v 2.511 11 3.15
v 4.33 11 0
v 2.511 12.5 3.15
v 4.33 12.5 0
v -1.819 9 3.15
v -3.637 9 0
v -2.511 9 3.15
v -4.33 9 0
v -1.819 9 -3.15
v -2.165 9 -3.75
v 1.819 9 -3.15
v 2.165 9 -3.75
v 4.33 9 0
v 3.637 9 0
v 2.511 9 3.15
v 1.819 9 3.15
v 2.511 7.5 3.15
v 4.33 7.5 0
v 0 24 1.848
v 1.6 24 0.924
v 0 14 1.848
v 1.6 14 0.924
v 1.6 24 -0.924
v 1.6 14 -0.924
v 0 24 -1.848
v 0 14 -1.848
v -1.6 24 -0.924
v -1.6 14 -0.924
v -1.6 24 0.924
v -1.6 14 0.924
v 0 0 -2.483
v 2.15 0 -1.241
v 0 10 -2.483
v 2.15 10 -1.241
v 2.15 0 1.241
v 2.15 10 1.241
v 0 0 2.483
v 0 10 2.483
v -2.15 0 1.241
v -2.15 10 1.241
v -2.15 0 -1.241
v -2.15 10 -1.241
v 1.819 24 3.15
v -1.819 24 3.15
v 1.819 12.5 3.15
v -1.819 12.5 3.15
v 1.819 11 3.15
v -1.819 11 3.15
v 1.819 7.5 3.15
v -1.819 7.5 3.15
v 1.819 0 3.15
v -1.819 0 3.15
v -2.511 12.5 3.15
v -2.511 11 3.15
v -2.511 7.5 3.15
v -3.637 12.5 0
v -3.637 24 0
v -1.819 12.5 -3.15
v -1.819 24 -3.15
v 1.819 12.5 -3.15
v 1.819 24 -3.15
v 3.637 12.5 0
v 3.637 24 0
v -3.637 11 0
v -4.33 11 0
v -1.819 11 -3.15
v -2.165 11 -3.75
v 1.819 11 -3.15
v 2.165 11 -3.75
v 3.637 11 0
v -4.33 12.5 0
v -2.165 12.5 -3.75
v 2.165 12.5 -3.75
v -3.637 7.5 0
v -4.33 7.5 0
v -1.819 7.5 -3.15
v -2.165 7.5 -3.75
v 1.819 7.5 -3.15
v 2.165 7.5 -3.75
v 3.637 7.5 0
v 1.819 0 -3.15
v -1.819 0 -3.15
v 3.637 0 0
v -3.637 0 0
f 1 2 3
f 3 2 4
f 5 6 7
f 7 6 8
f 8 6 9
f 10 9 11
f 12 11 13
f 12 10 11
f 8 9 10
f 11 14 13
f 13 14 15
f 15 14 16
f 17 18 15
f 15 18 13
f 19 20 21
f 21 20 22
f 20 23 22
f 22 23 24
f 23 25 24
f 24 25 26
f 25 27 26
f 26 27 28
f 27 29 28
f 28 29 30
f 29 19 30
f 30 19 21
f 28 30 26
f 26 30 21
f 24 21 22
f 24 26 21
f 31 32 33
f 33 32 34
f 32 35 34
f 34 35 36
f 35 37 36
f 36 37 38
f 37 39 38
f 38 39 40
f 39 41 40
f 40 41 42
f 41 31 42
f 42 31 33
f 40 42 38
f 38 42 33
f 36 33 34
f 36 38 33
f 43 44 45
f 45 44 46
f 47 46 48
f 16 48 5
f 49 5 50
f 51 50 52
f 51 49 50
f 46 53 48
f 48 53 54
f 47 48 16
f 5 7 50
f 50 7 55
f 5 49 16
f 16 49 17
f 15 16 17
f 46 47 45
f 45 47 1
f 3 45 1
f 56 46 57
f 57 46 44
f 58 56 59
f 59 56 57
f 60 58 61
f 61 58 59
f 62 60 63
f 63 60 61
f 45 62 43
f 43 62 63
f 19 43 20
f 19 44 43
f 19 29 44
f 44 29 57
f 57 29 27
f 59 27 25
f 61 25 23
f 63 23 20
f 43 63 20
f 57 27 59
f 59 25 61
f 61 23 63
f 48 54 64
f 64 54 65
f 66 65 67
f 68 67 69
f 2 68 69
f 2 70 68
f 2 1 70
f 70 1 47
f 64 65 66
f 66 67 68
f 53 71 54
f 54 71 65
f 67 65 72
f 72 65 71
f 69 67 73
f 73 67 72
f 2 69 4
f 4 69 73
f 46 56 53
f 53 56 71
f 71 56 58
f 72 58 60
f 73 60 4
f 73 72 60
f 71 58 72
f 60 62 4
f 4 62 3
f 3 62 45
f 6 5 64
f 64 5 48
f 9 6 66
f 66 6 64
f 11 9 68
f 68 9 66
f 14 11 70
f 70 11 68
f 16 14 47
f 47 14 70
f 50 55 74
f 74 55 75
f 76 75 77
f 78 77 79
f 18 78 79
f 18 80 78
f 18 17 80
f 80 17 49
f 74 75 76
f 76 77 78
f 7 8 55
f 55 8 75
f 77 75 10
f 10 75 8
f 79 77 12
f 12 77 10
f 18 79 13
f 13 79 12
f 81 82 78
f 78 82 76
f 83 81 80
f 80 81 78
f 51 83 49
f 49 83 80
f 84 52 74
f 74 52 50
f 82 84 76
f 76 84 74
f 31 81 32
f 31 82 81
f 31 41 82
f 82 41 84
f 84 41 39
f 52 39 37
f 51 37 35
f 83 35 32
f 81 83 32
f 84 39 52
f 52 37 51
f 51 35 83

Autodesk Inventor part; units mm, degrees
ref_plane "YZ Plane" through (0, 0, 0) normal (1, 0, 0) x (0, 1, 0)
ref_plane "XZ Plane" through (0, 0, 0) normal (0, 1, 0) x (-1, 0, 0)
ref_plane "XY Plane" through (0, 0, 0) normal (0, 0, 1) x (1, 0, 0)
sketch "Sketch2" plane through (0, 0, 0) normal (0, 1, 0) x (-1, 0, 0)
  line L0 (3.6373, 0) -> (1.8187, -3.15)
  line L1 (1.8187, -3.15) -> (-1.8187, -3.15)
  line L2 (-1.8187, -3.15) -> (-3.6373, 0)
  line L3 (-3.6373, 0) -> (-1.8187, 3.15)
  line L4 (-1.8187, 3.15) -> (1.8187, 3.15)
  line L5 (1.8187, 3.15) -> (3.6373, 0)
  point P0 (0, 0)
  point P1 (0, 0)
  dimension "d0" = 6.3
extrude "Joint End" add sketch "Sketch2" along normal blind 7.5
sketch "Sketch3" plane through (0, 7.5, 0) normal (0, 1, 0) x (1, 0, 0)
  line L0 (4.3301, 0) -> (2.1651, -3.75)
  line L1 (2.1651, -3.75) -> (-2.1651, -3.75)
  line L2 (-2.1651, -3.75) -> (-4.3301, 0)
  line L3 (-4.3301, 0) -> (-2.1651, 3.75)
  line L4 (-2.1651, 3.75) -> (2.1651, 3.75)
  line L5 (2.1651, 3.75) -> (4.3301, 0)
  point P0 (0, 0)
  point P1 (0, 0)
  dimension "d3" = 7.5
extrude "Spring Stop 1" add sketch "Sketch3" along normal blind 1.5
sketch "Sketch4" plane through (0, 9, 0) normal (0, 1, 0) x (1, 0, 0)
  line L0 (3.6373, 0) -> (1.8187, -3.15)
  line L1 (1.8187, -3.15) -> (-1.8187, -3.15)
  line L2 (-1.8187, -3.15) -> (-3.6373, 0)
  line L3 (-3.6373, 0) -> (-1.8187, 3.15)
  line L4 (-1.8187, 3.15) -> (1.8187, 3.15)
  line L5 (1.8187, 3.15) -> (3.6373, 0)
  point P0 (0, 0)
  point P1 (0, 0)
  point P2 (0, 0)
  dimension "d6" = 6.3
extrude "Spring Slot" add sketch "Sketch4" along normal blind 2
sketch "Sketch5" plane through (0, 11, 0) normal (0, 1, 0) x (1, 0, 0)
  line L0 (4.3301, 0) -> (2.1651, -3.75)
  line L1 (2.1651, -3.75) -> (-2.1651, -3.75)
  line L2 (-2.1651, -3.75) -> (-4.3301, 0)
  line L3 (-4.3301, 0) -> (-2.1651, 3.75)
  line L4 (-2.1651, 3.75) -> (2.1651, 3.75)
  line L5 (2.1651, 3.75) -> (4.3301, 0)
  point P0 (0, 0)
  point P1 (0, 0)
  dimension "d9" = 7.5
extrude "Spring Stop 2" add sketch "Sketch5" along normal blind 1.5
sketch "Sketch6" plane through (0, 12.5, 0) normal (0, 1, 0) x (1, 0, 0)
  line L0 (3.6373, 0) -> (1.8187, -3.15)
  line L1 (1.8187, -3.15) -> (-1.8187, -3.15)
  line L2 (-1.8187, -3.15) -> (-3.6373, 0)
  line L3 (-3.6373, 0) -> (-1.8187, 3.15)
  line L4 (-1.8187, 3.15) -> (1.8187, 3.15)
  line L5 (1.8187, 3.15) -> (3.6373, 0)
  point P0 (0, 0)
  point P1 (0, 0)
  dimension "d12" = 6.3
extrude "Carbon End" add sketch "Sketch6" along normal blind 11.5
sketch "Sketch10" plane through (0, 0, 0) normal (0, -1, 0) x (1, 0, 0)
  line L0 (0, -2.4826) -> (-2.15, -1.2413)
  line L1 (-2.15, -1.2413) -> (-2.15, 1.2413)
  line L2 (-2.15, 1.2413) -> (0, 2.4826)
  line L3 (0, 2.4826) -> (2.15, 1.2413)
  line L4 (2.15, 1.2413) -> (2.15, -1.2413)
  line L5 (2.15, -1.2413) -> (0, -2.4826)
  point P0 (0, 0)
  point P1 (0, 0)
  dimension "d27" = 4.3
extrude "Arm Hole" cut sketch "Sketch10" against normal blind 10
sketch "Sketch11" plane through (0, 24, 0) normal (0, 1, 0) x (1, 0, 0)
  line L0 (0, -1.8475) -> (-1.6, -0.9238)
  line L1 (-1.6, -0.9238) -> (-1.6, 0.9238)
  line L2 (-1.6, 0.9238) -> (0, 1.8475)
  line L3 (0, 1.8475) -> (1.6, 0.9238)
  line L4 (1.6, 0.9238) -> (1.6, -0.9238)
  line L5 (1.6, -0.9238) -> (0, -1.8475)
  point P0 (0, 0)
  point P1 (0, 0)
  dimension "d30" = 3.2
  dimension "d31" = 3.695
extrude "Carbon Hole" cut sketch "Sketch11" against normal blind 10
sketch "Sketch12" plane through (0, 12.5, 0) normal (0, 1, 0) x (1, 0, 0)
  line L0 (2.1651, -3.75) -> (4.3301, 0) projected
  line L1 (-4.3301, 0) -> (-2.1651, -3.75) projected
  line L2 (-2.1651, -3.75) -> (2.1651, -3.75) projected
  line L3 (-2.5115, -3.15) -> (2.5115, -3.15)
  line L4 (2.5115, -3.15) -> (2.1651, -3.75)
  line L5 (2.1651, -3.75) -> (-2.1651, -3.75)
  line L6 (-2.1651, -3.75) -> (-2.5115, -3.15)
  point P0 (0, 0)
extrude "Bottom Cutout" cut sketch "Sketch12" against normal blind 5
properties part number "3DR-Rod-Adapter-Enlightx-v2"
